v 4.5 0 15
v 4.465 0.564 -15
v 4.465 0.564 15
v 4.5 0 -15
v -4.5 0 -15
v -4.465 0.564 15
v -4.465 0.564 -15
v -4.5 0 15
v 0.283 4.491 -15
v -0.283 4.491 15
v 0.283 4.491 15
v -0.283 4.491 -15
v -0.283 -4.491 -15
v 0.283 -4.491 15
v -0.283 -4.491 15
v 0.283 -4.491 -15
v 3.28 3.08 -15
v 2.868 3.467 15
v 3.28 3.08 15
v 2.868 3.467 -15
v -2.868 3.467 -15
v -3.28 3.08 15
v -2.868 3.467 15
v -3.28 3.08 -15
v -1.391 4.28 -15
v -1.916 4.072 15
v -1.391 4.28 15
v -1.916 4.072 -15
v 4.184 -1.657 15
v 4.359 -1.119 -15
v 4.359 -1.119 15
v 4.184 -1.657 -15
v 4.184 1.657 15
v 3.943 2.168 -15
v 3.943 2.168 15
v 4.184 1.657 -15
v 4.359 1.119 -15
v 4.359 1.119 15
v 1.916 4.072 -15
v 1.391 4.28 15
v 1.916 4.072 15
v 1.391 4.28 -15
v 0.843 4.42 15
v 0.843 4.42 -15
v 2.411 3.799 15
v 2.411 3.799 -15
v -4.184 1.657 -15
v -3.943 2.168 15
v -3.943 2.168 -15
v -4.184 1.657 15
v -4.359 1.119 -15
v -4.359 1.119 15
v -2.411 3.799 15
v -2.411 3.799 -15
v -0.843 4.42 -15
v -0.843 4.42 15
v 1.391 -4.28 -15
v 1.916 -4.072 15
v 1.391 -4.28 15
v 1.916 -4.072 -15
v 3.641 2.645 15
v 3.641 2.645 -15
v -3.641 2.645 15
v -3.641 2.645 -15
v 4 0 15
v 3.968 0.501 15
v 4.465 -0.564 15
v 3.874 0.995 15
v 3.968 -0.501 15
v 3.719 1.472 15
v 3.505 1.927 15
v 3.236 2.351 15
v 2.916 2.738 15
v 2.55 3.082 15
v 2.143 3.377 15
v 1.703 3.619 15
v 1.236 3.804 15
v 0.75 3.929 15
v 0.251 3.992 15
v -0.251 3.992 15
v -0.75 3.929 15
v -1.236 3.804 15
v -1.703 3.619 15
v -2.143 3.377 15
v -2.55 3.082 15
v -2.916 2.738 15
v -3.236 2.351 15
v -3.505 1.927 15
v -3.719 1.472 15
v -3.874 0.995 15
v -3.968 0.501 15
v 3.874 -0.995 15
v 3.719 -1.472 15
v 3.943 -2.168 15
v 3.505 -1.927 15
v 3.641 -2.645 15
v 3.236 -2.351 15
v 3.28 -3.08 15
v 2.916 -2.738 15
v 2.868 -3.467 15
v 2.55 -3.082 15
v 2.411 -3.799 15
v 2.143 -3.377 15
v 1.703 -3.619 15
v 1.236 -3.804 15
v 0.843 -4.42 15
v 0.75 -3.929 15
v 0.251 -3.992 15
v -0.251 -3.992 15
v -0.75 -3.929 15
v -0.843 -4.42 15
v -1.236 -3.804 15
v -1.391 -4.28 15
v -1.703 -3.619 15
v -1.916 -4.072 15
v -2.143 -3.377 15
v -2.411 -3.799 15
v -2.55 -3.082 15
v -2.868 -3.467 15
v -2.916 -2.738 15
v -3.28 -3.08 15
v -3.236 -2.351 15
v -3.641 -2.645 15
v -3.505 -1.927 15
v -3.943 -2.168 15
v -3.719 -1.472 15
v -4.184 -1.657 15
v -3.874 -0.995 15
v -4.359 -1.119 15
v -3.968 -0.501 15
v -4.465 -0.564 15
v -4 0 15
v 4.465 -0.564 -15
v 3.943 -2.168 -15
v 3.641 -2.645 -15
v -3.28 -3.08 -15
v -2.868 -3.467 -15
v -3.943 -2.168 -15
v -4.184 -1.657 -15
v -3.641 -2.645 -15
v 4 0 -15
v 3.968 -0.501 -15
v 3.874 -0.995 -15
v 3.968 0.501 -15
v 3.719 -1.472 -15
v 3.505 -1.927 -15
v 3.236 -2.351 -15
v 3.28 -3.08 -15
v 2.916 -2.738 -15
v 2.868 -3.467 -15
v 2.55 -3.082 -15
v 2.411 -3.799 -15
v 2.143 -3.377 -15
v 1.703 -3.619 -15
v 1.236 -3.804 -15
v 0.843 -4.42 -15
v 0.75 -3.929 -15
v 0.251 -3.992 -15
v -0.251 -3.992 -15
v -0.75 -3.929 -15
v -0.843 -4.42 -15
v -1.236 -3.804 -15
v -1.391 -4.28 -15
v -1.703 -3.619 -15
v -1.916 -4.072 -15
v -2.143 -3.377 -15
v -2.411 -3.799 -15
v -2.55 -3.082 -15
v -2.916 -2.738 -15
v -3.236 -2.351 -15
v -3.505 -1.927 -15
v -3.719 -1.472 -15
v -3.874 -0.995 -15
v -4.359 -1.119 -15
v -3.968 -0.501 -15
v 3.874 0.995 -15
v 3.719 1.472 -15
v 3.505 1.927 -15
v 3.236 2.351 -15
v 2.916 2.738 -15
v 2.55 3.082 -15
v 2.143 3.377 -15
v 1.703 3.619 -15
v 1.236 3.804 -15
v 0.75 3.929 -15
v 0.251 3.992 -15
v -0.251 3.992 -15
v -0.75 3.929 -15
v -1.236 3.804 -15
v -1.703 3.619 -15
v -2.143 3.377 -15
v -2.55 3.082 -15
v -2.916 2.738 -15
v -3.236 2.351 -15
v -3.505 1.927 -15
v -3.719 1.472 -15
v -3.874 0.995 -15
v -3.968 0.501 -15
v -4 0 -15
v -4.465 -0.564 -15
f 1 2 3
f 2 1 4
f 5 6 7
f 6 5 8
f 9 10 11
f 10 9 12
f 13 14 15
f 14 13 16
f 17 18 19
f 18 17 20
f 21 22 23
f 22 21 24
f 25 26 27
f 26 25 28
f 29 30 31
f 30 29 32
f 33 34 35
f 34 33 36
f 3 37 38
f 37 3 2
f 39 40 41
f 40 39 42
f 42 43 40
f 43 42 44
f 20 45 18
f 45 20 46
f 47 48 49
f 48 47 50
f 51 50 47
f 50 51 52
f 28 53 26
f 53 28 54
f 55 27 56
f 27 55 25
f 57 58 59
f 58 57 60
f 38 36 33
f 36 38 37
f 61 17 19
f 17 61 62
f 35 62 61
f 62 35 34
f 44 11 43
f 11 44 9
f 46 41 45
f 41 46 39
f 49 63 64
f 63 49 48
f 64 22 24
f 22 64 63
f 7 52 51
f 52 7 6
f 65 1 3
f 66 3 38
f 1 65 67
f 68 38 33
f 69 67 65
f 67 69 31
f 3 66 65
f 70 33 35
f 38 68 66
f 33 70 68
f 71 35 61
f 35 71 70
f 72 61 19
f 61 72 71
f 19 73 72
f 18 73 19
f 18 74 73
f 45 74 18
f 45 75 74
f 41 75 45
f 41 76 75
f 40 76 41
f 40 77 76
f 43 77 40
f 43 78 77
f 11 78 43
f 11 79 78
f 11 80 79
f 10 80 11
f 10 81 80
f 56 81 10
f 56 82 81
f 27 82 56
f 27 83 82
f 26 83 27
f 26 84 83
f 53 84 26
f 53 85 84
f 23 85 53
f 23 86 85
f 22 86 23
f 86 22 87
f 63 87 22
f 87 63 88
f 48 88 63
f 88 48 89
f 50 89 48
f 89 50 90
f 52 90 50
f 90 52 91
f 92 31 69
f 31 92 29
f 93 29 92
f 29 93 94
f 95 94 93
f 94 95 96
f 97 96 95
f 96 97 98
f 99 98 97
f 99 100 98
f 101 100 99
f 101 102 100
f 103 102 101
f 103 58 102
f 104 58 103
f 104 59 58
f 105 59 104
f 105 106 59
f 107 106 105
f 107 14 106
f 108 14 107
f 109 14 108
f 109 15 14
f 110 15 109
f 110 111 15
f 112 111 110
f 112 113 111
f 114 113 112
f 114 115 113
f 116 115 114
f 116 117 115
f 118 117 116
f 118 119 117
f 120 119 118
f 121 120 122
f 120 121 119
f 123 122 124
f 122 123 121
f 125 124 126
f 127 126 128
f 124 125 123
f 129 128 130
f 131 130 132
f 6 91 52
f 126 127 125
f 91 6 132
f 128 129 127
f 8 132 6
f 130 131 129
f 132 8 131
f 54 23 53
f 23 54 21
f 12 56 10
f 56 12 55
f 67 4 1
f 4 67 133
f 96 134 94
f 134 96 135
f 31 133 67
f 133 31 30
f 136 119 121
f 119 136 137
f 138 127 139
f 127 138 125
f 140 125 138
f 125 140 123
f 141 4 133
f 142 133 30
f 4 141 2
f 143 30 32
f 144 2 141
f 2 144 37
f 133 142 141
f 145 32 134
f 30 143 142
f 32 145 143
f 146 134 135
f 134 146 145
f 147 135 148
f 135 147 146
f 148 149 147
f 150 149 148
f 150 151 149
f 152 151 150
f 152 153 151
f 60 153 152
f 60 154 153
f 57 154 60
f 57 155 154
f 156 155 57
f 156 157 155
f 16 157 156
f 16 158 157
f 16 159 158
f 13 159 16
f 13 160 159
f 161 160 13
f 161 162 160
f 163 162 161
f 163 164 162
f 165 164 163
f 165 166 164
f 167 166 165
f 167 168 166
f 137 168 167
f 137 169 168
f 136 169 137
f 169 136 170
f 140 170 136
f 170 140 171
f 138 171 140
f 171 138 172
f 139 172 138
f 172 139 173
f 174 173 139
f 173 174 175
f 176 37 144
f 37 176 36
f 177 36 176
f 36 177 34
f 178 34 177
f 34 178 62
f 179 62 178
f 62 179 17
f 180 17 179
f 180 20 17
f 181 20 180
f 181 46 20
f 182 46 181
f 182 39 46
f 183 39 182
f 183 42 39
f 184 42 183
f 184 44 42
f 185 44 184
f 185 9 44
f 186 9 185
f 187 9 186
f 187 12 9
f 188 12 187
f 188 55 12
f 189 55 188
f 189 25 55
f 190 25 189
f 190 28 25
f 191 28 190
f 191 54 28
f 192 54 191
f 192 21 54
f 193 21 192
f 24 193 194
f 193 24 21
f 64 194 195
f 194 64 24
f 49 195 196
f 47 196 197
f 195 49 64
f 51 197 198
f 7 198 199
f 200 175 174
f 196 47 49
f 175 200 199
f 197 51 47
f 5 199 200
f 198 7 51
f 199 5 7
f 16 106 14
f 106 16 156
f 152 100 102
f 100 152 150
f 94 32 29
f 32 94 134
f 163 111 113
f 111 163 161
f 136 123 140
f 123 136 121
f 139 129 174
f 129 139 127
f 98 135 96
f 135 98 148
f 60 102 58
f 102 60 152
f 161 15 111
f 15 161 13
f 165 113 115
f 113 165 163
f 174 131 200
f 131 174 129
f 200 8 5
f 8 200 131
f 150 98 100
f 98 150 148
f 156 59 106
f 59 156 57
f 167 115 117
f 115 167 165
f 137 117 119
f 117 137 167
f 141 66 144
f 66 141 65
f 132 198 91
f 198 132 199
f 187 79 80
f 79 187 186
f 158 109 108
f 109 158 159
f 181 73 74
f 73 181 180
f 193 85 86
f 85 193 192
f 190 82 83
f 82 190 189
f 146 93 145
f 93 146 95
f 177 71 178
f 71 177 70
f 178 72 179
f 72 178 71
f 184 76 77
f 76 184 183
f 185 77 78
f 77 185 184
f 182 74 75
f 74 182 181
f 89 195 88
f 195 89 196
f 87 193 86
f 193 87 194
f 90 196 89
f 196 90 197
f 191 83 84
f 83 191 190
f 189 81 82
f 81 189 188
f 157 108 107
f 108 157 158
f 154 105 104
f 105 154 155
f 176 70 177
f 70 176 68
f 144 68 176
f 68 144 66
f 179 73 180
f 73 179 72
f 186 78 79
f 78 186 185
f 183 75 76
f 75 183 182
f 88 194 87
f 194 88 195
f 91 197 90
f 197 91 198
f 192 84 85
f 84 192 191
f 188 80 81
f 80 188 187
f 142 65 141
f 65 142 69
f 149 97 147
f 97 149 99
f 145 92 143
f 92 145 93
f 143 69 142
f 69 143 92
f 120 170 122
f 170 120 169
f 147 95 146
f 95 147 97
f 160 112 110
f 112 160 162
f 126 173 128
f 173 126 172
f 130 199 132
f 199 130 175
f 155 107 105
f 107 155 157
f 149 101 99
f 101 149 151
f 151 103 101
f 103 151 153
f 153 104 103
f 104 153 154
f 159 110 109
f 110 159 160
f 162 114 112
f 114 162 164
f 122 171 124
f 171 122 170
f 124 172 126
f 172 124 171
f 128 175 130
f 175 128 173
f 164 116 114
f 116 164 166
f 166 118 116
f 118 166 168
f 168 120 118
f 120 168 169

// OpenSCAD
$fn = 50;


difference() {
	union() {
		translate(v = [0, 0, -15.0000000000]) {
			cylinder(h = 30, r = 4.5000000000);
		}
	}
	union() {
		translate(v = [0, 0, -100.0000000000]) {
			cylinder(h = 200, r = 4);
		}
	}
}
